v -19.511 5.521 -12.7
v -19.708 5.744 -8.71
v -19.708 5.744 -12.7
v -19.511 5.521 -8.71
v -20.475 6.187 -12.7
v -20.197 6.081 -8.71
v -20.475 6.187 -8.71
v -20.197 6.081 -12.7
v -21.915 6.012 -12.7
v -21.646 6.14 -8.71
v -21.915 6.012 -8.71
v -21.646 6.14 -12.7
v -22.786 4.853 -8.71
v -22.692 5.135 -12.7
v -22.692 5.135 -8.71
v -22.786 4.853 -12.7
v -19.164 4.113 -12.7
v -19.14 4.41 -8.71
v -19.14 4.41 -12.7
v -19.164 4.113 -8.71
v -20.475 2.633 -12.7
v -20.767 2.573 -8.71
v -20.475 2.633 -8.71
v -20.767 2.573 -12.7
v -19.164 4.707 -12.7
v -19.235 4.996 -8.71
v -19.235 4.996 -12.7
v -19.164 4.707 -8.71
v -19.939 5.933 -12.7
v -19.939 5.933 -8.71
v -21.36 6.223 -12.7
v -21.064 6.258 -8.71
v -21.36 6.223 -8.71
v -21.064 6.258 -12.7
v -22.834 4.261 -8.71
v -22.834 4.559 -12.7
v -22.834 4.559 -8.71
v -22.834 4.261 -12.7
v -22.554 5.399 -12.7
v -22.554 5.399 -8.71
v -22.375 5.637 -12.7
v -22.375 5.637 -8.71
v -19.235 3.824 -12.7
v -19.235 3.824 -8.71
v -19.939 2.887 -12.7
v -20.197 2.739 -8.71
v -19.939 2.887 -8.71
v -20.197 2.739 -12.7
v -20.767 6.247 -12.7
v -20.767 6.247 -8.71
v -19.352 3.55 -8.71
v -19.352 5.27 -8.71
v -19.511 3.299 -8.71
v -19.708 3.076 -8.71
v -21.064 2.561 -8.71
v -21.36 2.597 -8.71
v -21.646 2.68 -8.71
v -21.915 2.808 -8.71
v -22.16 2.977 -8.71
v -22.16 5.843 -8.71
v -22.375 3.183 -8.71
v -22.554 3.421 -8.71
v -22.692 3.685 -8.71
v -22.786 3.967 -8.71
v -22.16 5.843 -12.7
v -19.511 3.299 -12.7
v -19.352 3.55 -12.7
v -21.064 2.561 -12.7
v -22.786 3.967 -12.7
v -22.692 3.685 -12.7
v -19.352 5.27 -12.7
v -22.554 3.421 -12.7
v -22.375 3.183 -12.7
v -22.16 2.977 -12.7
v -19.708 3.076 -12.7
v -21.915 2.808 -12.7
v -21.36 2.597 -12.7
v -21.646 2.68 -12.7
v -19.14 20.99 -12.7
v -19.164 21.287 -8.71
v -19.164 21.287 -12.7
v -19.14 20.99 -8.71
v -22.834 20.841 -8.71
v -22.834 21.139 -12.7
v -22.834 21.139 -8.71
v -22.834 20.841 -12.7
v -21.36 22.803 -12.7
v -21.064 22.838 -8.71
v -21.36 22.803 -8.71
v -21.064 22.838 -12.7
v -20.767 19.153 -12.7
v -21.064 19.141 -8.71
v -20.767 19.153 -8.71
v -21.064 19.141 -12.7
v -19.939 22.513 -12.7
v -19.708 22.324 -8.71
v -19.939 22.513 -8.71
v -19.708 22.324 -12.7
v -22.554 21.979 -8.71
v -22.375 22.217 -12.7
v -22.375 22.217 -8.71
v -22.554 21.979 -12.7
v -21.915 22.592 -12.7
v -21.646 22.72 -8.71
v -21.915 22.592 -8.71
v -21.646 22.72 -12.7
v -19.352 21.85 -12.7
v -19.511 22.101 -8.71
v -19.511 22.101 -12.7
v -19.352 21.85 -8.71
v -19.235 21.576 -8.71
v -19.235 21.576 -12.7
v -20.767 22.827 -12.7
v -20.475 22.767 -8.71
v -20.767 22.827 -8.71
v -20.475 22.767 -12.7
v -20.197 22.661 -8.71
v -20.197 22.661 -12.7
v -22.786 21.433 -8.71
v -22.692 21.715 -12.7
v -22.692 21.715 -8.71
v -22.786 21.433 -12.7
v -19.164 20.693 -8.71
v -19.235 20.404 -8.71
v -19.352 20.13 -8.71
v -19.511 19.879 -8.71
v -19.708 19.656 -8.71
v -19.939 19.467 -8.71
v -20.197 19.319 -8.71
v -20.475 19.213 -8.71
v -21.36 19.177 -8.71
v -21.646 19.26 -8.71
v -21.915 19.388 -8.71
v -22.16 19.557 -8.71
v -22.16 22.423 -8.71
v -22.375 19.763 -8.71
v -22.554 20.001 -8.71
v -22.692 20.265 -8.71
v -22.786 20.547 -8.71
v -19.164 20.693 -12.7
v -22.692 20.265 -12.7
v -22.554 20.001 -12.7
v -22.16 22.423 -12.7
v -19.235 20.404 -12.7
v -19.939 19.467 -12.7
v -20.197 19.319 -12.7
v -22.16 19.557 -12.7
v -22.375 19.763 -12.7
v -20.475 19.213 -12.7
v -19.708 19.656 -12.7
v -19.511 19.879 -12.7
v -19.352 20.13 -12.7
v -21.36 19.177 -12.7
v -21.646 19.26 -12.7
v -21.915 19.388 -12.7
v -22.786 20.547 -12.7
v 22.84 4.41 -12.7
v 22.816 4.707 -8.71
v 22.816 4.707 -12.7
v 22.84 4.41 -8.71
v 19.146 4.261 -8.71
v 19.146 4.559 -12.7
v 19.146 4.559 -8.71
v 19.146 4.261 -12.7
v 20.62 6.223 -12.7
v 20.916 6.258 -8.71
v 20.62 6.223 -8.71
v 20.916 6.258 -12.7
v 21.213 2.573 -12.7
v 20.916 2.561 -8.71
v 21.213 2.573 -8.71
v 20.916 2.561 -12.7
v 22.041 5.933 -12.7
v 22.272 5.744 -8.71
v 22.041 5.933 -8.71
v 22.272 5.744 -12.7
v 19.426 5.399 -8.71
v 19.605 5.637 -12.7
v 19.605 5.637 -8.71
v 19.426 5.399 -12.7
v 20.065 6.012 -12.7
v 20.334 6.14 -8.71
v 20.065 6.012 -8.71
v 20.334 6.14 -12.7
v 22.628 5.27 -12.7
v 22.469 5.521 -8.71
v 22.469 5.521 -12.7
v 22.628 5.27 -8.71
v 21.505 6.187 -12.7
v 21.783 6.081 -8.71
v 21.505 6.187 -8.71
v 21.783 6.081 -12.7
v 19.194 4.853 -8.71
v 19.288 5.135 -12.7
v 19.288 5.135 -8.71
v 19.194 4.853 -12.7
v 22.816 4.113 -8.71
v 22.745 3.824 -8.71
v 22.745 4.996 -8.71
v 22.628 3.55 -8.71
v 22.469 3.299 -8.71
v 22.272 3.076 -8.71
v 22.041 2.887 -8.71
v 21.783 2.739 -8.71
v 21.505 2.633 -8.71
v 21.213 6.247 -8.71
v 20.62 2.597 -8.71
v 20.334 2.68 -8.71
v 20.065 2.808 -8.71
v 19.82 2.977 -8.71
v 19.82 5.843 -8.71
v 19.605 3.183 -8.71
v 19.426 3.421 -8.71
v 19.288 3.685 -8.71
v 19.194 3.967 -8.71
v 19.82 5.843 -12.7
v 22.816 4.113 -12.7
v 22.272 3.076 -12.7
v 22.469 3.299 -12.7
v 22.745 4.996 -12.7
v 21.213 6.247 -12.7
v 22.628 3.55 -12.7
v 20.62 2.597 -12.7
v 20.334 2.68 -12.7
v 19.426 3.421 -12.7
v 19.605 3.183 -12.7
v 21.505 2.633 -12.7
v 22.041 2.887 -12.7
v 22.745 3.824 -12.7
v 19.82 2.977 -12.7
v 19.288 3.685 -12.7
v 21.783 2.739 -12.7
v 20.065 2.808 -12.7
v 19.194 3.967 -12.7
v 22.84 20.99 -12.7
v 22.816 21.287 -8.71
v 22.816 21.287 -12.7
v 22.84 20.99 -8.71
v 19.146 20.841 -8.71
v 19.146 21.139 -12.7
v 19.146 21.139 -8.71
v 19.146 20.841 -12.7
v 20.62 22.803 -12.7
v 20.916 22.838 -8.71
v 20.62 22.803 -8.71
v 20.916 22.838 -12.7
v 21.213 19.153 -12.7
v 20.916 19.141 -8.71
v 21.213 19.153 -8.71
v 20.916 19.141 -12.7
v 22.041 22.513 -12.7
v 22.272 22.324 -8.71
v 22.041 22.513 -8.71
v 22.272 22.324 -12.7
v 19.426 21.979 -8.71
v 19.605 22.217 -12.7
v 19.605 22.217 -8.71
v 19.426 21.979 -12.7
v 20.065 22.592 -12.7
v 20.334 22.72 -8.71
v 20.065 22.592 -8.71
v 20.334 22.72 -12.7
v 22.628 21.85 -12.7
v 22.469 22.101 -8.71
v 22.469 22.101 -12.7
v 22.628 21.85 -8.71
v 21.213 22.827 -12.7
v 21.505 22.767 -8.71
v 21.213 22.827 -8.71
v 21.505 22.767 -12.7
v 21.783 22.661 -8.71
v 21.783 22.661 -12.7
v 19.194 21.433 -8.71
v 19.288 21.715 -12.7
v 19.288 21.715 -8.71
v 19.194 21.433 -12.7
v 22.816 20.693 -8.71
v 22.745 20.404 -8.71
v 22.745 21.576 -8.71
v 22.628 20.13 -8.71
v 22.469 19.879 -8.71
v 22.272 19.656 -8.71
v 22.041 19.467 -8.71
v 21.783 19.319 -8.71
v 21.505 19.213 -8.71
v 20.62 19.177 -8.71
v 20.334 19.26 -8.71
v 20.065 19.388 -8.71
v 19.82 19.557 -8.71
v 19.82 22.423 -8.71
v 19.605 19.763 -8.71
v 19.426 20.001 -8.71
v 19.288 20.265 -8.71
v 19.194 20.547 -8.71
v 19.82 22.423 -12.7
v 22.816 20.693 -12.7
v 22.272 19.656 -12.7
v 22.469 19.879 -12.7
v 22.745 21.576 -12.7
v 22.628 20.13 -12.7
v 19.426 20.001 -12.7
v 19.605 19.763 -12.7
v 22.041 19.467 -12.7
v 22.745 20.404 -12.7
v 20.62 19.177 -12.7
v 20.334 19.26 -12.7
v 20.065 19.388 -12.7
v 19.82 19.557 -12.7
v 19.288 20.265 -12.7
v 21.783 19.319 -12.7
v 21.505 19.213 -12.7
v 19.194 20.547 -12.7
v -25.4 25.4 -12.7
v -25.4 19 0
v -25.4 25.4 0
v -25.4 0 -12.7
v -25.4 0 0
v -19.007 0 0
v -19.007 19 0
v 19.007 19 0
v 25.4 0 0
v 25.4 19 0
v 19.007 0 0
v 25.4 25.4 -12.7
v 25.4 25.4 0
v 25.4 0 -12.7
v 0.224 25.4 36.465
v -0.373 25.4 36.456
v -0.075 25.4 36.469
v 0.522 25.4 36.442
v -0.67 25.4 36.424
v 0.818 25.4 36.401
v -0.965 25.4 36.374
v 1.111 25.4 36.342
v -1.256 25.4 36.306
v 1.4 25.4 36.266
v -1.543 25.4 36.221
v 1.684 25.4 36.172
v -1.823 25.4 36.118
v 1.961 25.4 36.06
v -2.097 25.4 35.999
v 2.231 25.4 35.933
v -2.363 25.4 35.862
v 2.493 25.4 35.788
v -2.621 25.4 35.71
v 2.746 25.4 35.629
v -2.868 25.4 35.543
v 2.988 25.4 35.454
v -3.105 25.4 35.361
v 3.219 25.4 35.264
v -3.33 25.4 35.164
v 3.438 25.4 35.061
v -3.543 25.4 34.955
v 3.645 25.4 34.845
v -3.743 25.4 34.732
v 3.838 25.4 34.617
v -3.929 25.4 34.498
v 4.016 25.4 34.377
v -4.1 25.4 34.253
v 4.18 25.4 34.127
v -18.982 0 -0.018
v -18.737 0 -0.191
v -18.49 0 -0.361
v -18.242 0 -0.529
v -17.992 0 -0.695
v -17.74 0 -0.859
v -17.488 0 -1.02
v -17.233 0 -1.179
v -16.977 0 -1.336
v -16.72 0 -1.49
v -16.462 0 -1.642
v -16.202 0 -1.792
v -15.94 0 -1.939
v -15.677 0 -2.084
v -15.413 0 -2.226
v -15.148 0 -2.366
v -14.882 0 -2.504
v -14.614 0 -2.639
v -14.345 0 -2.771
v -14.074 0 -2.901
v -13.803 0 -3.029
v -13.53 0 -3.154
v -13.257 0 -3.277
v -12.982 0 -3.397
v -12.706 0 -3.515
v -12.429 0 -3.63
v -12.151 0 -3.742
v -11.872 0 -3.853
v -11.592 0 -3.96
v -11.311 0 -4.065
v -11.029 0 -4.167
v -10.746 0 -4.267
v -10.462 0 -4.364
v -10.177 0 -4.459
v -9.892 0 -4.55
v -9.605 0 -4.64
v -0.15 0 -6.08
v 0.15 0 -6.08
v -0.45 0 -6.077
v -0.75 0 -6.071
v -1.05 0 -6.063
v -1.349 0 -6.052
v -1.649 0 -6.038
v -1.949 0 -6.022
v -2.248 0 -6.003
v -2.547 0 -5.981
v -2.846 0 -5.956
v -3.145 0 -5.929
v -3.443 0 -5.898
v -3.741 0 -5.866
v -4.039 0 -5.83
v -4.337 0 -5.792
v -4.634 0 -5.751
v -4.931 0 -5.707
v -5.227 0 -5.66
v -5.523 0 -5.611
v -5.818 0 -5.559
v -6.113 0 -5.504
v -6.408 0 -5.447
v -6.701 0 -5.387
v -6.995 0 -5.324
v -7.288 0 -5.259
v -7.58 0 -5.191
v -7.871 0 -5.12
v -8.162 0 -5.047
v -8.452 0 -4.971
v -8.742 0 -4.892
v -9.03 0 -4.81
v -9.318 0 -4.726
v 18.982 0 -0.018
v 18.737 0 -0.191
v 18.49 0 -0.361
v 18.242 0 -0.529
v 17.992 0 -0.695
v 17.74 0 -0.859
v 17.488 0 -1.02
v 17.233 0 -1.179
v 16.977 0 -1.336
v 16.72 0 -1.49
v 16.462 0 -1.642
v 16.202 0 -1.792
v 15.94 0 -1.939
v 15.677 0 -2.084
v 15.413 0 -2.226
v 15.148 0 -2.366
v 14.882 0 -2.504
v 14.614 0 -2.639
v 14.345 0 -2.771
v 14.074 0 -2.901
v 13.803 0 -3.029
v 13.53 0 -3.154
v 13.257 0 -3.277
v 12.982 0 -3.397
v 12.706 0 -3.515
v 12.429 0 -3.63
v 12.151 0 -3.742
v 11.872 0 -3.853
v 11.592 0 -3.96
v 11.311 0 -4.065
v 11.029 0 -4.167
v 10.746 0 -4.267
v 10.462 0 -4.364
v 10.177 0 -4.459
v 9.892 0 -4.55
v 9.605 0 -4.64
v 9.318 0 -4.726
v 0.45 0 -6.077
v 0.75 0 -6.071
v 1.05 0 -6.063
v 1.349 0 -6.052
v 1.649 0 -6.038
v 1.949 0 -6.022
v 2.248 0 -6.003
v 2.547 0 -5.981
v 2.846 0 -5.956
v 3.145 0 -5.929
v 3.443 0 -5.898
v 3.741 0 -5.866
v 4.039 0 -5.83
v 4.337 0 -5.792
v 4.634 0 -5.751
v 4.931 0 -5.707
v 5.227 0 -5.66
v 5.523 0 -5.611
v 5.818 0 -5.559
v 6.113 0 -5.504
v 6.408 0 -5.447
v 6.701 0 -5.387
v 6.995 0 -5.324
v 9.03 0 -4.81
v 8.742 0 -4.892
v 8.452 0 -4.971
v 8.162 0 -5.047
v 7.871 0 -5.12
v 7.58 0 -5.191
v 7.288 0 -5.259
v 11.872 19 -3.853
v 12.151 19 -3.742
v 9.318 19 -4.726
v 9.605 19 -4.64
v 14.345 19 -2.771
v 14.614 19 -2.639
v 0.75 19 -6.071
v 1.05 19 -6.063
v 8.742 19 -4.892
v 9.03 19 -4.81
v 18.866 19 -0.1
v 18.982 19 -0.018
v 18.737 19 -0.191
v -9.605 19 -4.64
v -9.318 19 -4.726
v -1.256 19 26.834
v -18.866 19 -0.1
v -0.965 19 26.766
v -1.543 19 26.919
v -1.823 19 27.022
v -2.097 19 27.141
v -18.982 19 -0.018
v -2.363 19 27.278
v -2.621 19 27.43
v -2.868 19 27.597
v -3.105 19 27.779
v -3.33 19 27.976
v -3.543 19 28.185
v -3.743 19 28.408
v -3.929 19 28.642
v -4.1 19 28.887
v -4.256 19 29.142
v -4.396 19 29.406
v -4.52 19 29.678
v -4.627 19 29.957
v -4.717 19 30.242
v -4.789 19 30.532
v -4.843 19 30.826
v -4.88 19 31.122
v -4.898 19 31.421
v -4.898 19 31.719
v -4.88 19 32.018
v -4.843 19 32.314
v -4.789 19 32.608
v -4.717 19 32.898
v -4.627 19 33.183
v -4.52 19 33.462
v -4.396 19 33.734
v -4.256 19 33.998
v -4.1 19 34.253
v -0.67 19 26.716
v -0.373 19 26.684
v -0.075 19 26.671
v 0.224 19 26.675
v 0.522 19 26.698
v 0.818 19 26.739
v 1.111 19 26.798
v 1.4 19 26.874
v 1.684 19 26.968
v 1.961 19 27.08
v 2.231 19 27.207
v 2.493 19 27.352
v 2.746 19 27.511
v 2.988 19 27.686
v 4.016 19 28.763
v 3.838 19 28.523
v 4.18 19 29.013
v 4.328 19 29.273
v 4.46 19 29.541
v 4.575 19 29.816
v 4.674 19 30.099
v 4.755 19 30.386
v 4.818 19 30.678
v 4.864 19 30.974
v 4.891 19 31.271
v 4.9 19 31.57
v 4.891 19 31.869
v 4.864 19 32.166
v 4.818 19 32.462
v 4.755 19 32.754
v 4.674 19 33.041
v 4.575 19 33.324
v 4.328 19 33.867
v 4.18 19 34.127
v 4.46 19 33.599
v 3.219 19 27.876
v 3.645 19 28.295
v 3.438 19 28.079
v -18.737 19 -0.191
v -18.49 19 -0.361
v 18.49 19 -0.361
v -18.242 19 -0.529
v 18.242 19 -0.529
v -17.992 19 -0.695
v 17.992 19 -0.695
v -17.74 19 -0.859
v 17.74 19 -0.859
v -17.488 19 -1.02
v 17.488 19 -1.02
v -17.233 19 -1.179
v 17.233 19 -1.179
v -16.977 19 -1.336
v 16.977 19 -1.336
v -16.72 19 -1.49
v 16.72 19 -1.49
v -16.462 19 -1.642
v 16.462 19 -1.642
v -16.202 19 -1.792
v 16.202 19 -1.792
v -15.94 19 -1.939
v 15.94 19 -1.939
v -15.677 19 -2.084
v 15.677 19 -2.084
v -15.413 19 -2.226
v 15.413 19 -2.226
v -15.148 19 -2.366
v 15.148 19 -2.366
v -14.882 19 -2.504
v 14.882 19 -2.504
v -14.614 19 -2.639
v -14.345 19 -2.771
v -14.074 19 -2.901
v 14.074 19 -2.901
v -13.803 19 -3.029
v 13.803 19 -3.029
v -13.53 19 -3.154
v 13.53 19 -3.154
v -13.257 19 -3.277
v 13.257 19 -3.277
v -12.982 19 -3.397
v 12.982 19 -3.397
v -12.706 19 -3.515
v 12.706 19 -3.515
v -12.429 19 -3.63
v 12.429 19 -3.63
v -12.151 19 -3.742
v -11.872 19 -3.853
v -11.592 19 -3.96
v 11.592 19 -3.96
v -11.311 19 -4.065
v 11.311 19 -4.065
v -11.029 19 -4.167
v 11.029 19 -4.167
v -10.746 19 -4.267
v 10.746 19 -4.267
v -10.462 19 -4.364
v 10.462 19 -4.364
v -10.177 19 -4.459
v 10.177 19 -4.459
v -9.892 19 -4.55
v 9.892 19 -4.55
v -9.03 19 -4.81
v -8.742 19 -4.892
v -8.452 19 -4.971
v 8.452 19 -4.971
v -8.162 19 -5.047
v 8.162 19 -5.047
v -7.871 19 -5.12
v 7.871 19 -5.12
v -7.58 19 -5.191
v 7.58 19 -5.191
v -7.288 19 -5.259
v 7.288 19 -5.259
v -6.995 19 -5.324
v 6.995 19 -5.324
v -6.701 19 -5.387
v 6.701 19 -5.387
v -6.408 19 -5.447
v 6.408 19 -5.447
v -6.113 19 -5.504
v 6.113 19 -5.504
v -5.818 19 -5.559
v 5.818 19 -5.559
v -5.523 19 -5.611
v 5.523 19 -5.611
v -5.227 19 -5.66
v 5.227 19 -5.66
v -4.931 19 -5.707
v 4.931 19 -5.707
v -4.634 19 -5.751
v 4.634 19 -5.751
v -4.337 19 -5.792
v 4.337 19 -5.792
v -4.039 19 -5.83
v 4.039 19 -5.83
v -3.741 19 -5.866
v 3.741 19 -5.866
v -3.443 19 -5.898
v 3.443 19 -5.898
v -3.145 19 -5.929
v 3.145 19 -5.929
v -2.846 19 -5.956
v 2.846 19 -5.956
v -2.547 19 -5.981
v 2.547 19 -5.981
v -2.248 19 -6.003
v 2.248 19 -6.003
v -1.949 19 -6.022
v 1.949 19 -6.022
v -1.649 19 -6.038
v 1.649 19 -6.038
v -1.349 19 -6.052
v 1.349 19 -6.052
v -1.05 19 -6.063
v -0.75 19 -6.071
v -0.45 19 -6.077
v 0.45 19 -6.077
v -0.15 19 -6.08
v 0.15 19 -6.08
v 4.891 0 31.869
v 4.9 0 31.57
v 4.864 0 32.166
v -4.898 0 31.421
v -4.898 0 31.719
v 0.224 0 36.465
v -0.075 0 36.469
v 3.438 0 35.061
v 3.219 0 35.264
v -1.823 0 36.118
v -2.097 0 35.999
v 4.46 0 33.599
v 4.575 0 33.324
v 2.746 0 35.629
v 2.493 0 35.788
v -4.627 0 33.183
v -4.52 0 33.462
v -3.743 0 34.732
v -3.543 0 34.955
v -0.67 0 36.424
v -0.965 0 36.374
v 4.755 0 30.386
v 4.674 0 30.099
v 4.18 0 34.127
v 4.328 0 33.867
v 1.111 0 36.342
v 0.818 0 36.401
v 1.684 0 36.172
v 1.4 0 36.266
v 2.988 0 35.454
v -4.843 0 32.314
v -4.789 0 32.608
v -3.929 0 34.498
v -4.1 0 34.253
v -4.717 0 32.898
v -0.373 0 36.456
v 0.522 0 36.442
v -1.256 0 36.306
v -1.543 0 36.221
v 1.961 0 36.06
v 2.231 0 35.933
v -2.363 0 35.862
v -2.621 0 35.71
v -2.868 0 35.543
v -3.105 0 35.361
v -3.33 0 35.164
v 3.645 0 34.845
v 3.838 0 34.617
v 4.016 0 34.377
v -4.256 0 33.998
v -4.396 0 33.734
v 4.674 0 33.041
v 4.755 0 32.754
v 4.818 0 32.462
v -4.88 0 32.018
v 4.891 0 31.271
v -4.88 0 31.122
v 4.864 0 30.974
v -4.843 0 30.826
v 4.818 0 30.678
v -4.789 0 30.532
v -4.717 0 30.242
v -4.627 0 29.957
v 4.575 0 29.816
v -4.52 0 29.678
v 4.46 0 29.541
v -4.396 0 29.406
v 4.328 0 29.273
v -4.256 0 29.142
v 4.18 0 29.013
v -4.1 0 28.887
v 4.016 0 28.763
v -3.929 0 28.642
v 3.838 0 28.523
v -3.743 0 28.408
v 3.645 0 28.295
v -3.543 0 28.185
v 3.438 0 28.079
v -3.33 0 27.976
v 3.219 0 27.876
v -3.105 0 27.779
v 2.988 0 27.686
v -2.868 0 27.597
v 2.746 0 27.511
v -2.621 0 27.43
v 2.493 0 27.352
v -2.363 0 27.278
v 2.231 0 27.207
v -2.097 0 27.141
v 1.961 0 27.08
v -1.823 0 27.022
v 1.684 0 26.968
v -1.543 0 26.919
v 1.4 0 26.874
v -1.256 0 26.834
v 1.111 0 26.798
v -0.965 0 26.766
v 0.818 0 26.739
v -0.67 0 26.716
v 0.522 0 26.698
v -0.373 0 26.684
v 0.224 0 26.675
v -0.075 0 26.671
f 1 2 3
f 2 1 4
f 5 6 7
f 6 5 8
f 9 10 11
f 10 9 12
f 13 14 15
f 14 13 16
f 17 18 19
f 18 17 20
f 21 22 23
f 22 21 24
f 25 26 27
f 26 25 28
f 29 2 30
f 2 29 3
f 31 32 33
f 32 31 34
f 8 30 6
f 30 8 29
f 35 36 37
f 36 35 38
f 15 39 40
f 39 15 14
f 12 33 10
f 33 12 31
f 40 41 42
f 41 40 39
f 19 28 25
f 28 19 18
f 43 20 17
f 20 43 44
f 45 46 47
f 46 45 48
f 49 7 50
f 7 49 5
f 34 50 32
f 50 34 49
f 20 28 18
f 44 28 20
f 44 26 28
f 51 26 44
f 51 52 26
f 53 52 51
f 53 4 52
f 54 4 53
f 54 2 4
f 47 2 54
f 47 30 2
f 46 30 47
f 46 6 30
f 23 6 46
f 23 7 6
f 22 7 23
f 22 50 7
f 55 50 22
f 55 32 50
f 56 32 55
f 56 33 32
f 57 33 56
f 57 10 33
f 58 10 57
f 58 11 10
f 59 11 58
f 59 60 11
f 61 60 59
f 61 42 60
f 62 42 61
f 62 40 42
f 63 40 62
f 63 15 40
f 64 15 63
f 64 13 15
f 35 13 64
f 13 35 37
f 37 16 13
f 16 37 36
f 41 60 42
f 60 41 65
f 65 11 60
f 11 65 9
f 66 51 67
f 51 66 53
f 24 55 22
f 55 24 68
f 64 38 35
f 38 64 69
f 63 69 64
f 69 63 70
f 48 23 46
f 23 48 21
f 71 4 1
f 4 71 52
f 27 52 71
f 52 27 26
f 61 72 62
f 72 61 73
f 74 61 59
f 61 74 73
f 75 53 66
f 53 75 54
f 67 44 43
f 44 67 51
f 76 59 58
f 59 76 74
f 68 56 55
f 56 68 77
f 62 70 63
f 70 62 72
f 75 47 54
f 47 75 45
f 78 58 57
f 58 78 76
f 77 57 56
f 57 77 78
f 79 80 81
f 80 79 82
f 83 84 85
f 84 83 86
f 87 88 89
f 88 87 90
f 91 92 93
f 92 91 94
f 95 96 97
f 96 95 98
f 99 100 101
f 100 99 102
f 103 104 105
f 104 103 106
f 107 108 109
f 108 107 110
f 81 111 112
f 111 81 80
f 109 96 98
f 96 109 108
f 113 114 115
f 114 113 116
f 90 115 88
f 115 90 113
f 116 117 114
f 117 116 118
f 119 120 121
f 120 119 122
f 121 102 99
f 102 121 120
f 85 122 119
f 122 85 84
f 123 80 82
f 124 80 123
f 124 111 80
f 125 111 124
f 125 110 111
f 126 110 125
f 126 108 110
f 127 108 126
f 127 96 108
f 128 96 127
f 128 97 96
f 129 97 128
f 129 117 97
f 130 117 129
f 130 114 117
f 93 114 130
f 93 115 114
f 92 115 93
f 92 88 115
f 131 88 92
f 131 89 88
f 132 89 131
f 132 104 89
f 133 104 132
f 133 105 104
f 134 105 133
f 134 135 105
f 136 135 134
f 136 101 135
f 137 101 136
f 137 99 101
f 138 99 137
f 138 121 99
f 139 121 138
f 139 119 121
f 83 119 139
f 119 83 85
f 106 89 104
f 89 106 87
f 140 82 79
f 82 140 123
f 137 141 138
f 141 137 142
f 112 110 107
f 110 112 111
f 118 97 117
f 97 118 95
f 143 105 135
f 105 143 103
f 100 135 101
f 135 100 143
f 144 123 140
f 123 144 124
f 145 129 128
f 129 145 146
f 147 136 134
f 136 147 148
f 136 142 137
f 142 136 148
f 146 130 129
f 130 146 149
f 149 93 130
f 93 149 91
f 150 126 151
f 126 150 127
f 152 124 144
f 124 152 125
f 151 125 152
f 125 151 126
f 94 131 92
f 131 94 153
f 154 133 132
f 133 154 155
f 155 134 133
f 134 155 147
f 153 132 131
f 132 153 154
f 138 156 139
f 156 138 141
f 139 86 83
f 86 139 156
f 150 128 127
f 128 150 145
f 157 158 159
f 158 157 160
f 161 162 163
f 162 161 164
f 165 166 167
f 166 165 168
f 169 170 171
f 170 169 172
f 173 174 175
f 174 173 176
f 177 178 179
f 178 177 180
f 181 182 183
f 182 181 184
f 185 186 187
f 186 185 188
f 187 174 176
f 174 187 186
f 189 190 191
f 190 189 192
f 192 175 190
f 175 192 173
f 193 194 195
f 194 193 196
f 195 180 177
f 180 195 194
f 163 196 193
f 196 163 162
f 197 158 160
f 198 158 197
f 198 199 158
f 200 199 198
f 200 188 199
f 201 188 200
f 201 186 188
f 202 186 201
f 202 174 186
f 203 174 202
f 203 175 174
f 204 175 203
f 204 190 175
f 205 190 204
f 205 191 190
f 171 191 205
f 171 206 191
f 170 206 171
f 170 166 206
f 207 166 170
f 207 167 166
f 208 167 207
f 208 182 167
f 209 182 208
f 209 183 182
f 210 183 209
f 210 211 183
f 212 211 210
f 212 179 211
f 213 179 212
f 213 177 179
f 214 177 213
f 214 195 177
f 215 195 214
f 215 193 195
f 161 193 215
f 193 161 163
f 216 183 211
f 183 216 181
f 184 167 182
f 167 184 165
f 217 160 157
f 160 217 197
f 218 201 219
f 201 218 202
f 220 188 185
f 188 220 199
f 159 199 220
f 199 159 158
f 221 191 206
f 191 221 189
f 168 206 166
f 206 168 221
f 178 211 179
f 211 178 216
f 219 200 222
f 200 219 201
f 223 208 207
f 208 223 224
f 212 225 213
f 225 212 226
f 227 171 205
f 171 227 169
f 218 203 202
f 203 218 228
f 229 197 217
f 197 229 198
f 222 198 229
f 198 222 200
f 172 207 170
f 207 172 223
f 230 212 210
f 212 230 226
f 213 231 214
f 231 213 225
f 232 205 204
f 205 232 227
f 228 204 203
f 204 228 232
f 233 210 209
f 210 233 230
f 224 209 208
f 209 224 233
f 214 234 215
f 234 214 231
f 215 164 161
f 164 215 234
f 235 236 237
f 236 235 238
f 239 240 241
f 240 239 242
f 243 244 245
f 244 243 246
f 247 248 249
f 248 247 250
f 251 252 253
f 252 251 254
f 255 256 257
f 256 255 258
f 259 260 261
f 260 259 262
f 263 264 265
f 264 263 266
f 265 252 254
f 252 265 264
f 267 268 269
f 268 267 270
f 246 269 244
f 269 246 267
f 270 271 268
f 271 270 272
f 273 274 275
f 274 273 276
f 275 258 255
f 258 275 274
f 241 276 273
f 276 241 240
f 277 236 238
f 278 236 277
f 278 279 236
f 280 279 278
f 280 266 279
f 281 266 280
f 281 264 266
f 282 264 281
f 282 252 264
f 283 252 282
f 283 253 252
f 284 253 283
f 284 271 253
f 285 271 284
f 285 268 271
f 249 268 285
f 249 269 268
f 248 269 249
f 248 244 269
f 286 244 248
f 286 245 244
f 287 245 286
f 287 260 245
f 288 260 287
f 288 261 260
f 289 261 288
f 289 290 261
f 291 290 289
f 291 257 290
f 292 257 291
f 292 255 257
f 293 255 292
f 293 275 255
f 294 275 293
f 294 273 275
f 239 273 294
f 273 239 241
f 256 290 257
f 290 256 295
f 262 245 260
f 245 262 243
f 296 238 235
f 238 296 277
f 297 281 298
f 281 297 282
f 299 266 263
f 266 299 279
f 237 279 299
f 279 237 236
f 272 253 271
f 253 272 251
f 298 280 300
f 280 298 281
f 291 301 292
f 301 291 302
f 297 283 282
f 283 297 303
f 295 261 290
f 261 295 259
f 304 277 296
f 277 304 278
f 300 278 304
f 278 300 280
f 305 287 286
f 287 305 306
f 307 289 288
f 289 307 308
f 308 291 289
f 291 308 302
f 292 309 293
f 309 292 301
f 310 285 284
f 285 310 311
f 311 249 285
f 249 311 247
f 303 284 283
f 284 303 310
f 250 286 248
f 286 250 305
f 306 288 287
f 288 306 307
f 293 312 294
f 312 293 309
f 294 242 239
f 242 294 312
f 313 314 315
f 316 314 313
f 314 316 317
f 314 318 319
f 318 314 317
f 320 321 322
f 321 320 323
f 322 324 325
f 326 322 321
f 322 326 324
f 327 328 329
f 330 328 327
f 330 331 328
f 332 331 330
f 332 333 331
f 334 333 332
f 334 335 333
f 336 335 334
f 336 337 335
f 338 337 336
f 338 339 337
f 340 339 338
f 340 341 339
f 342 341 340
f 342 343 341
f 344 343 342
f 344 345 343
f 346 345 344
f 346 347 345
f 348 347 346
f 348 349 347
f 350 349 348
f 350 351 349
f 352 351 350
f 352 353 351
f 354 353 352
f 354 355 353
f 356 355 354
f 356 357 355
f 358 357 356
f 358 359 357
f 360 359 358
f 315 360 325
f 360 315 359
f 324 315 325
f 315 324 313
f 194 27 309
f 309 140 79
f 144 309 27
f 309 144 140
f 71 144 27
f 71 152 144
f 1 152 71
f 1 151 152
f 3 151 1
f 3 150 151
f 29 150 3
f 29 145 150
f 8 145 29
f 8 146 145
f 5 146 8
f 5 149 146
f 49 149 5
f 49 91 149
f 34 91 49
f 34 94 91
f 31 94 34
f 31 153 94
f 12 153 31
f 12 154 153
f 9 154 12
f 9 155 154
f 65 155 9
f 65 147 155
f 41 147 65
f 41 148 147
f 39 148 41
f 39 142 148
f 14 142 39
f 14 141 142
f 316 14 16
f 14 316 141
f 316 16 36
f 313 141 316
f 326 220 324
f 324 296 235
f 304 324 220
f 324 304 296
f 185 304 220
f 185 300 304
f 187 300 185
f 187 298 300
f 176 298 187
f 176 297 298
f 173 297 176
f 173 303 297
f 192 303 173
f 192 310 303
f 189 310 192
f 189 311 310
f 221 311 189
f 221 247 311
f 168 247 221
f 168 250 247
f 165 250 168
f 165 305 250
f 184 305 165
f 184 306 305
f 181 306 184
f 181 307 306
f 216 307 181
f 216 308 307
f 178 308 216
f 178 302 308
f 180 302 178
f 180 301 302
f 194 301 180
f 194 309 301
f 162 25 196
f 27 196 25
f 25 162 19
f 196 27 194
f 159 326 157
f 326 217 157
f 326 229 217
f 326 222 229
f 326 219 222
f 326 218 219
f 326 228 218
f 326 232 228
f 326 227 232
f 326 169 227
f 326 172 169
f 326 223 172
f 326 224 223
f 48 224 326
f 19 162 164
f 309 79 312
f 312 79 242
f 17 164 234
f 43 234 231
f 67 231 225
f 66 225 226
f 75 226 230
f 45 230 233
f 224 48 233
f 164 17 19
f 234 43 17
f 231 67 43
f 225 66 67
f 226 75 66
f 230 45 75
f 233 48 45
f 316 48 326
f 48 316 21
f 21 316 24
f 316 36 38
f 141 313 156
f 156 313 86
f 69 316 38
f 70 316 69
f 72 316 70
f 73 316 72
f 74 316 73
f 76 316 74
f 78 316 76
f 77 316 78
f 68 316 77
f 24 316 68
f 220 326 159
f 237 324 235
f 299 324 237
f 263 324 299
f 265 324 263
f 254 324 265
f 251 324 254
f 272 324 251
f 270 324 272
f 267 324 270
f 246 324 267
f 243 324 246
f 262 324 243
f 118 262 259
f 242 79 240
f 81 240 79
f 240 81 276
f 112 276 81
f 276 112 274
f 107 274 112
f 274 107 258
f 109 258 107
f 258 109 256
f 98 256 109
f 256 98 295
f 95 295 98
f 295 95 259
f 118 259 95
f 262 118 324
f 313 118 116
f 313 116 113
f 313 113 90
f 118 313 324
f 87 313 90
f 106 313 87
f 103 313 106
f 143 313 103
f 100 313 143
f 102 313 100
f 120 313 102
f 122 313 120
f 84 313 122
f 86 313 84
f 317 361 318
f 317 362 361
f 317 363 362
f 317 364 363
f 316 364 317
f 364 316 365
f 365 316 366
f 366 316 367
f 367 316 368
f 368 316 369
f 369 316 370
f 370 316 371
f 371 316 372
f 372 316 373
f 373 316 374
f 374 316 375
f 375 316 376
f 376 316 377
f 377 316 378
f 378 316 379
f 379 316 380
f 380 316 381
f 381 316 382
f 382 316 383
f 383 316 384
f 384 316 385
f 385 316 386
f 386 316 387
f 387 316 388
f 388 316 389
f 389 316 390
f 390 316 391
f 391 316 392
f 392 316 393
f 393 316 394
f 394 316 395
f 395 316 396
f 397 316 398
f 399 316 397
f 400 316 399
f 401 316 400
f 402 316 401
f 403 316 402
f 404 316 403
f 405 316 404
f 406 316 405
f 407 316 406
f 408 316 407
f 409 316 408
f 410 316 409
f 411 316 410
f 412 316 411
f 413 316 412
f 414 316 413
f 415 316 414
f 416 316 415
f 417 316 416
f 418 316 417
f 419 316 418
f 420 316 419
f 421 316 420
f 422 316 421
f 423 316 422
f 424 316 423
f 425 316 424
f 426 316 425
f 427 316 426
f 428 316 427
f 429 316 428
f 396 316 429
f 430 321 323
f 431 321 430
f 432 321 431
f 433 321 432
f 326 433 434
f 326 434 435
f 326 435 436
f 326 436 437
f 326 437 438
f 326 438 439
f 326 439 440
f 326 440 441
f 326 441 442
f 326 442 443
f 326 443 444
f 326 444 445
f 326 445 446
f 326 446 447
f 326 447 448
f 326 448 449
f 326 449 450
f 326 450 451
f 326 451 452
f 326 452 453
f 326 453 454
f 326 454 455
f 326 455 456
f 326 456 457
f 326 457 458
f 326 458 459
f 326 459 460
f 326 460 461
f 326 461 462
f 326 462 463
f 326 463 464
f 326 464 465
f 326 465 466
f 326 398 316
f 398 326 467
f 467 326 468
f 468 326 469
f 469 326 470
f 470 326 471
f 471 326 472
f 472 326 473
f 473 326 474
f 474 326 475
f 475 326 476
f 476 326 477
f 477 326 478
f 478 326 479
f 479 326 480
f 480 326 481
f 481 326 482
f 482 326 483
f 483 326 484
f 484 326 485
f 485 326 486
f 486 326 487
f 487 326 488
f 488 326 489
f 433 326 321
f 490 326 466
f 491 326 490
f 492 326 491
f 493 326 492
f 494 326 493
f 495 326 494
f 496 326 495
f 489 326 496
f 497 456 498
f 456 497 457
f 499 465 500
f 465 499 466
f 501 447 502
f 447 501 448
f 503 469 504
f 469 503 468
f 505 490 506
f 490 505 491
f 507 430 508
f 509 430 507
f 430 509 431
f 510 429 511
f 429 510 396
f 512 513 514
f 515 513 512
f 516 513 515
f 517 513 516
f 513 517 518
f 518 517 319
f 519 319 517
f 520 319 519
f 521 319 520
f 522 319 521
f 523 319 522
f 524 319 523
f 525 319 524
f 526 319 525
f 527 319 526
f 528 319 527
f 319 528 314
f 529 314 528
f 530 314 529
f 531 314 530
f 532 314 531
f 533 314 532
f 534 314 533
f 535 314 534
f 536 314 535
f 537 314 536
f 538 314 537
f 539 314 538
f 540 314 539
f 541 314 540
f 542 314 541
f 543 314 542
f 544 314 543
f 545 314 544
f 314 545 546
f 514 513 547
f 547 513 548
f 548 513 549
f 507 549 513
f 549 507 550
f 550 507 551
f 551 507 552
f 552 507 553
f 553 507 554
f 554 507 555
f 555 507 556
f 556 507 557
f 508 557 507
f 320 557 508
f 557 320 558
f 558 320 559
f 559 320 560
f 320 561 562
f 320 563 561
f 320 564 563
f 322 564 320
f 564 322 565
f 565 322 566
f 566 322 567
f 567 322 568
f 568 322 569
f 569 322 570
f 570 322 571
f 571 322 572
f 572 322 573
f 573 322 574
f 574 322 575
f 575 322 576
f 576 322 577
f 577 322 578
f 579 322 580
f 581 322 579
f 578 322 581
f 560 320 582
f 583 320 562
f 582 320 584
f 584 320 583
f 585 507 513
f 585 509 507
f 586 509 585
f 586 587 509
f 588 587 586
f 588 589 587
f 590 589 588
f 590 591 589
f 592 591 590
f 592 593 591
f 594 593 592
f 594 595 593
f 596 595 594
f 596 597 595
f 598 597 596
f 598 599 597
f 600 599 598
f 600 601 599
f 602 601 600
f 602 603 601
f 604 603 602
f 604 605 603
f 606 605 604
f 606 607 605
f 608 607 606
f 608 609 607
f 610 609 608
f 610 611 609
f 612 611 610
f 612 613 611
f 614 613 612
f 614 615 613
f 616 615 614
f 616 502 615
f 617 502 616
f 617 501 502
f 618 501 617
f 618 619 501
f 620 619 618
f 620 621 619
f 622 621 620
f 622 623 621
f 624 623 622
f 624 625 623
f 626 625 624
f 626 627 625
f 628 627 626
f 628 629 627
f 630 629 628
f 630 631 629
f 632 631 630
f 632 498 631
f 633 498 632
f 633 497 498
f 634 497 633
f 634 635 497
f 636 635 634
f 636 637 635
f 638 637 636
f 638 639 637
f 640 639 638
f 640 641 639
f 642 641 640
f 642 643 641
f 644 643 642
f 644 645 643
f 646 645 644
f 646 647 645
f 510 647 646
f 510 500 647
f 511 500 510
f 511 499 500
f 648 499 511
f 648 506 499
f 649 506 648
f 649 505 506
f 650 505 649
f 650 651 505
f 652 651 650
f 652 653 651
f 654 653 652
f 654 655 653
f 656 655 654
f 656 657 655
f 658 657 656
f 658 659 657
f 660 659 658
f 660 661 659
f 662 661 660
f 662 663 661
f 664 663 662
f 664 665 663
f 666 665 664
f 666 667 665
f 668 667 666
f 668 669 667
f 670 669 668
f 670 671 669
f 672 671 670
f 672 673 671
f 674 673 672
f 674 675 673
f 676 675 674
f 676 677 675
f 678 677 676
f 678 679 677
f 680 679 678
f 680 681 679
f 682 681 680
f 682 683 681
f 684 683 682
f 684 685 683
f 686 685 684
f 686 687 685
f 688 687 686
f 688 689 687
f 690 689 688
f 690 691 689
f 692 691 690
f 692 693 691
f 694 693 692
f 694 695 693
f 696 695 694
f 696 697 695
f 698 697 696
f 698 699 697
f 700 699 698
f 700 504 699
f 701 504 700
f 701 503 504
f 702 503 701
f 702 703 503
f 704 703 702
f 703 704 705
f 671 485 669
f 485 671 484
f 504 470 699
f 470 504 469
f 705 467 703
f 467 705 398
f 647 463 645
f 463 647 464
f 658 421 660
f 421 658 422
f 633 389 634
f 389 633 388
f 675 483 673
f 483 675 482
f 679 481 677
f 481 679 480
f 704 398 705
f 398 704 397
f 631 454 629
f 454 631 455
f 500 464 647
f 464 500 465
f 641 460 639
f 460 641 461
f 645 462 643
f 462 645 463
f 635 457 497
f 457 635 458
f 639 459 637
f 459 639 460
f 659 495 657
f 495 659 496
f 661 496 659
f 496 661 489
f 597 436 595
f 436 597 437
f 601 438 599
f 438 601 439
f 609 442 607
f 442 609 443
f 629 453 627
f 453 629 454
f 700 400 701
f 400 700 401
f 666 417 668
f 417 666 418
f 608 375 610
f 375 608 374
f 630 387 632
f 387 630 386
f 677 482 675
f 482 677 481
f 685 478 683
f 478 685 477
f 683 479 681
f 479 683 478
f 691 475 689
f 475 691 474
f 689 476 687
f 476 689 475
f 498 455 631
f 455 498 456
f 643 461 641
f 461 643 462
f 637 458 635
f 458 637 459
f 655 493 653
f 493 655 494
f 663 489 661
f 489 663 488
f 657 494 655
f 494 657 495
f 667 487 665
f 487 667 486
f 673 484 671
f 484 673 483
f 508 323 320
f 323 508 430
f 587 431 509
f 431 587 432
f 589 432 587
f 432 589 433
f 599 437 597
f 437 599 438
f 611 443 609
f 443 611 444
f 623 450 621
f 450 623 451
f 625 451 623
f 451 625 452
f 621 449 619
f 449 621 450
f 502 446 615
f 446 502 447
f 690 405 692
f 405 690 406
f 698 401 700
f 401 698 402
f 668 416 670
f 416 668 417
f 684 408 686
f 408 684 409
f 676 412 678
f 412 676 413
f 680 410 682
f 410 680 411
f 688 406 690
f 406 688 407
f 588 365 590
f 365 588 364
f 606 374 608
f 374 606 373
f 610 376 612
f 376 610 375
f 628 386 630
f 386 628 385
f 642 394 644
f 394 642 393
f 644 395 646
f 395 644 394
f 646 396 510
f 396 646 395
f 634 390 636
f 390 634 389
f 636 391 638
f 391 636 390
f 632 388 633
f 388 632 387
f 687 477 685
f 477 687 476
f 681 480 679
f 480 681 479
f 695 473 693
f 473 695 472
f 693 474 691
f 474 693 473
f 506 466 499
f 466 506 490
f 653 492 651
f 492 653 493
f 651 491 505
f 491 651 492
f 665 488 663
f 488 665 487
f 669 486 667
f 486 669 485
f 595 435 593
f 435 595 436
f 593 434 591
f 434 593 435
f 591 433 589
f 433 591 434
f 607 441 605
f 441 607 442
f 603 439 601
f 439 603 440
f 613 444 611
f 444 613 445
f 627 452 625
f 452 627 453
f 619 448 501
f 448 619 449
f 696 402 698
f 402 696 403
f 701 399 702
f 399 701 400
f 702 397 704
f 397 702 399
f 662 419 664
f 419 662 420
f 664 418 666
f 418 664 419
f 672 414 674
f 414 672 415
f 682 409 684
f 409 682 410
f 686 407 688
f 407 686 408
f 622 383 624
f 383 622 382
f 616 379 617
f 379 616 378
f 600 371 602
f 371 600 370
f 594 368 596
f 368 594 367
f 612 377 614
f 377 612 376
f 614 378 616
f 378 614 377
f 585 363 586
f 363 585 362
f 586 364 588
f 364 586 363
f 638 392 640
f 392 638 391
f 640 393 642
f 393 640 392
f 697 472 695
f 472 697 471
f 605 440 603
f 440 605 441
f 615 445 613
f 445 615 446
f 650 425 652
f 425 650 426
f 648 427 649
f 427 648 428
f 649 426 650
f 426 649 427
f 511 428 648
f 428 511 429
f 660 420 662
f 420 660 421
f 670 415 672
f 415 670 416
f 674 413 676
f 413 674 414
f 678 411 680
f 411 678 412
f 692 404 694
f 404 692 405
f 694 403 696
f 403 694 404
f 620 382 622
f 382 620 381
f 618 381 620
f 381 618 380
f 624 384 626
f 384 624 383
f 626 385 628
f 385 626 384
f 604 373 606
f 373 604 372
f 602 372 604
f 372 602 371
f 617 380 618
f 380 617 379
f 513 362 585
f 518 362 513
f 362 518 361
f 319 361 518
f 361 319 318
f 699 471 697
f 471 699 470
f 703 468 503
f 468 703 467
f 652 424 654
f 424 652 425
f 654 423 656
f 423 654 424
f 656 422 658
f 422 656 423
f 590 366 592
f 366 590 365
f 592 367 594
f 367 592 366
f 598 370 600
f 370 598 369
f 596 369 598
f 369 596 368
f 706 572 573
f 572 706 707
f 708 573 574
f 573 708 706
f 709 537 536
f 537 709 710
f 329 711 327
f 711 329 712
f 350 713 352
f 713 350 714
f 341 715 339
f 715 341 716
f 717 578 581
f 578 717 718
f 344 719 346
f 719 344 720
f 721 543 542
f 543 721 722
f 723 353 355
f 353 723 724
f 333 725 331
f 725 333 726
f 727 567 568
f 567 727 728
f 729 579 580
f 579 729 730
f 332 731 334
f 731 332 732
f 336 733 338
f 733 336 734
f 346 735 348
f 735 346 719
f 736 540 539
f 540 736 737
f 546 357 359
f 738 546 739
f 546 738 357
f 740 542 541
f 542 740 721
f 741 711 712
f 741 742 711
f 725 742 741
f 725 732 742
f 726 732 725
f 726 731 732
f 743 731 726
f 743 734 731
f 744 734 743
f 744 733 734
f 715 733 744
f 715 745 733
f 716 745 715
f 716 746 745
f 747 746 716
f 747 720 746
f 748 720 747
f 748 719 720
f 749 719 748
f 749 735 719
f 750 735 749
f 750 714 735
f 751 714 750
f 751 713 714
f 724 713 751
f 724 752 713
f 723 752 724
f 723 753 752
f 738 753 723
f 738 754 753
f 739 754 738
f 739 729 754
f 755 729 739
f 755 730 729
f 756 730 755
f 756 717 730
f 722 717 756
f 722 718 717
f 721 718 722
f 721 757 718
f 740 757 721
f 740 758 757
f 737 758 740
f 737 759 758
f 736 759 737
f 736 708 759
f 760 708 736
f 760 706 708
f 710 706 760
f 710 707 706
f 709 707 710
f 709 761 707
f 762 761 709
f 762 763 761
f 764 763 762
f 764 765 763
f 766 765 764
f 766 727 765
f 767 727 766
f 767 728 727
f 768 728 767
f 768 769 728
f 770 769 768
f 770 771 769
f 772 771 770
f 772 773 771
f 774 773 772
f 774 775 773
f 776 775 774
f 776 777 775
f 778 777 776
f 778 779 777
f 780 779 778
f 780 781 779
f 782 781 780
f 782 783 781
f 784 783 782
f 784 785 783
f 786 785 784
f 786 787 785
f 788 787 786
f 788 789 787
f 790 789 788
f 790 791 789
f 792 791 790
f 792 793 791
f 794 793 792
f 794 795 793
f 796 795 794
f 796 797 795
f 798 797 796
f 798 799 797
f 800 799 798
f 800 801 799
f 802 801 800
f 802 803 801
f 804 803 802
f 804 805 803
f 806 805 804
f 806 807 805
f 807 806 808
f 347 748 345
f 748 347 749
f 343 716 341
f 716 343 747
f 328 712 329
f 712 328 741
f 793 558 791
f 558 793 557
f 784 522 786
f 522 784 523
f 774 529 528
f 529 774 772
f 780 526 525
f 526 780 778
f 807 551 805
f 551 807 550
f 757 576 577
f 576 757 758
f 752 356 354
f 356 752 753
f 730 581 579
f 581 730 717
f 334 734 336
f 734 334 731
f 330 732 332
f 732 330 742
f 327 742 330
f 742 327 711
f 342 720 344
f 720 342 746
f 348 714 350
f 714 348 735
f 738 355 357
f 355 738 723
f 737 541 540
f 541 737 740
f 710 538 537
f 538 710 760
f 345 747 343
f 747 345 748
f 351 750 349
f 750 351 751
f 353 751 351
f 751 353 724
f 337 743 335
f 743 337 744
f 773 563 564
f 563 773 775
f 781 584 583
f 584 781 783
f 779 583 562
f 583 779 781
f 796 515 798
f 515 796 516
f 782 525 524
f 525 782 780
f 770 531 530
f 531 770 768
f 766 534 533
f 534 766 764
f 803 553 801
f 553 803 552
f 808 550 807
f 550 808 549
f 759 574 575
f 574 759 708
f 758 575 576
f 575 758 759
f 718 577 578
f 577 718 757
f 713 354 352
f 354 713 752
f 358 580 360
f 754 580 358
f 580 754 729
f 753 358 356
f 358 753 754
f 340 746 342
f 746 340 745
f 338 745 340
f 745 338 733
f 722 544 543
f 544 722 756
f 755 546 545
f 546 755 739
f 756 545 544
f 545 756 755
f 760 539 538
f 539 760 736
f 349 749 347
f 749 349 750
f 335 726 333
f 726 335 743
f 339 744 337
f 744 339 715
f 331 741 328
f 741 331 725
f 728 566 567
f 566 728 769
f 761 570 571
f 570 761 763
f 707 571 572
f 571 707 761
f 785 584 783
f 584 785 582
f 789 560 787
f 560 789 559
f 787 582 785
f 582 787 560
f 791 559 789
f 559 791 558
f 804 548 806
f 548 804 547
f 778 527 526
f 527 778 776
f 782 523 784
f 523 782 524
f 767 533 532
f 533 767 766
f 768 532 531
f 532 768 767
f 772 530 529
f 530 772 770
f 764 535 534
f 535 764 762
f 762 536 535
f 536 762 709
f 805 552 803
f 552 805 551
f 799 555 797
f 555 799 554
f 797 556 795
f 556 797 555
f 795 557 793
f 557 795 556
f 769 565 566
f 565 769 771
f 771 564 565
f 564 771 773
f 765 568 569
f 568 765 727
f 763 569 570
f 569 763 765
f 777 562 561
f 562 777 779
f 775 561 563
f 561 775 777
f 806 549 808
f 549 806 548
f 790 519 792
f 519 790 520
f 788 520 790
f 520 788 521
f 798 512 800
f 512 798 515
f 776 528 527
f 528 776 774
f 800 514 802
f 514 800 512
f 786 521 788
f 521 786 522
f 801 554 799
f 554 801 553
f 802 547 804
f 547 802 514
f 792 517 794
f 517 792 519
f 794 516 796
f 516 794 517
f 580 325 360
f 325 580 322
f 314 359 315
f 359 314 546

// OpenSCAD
// file: LockedForge.scad
x = 1;
y = 2;
unit = 25.4;
d_magnet = 5;
layer_height = .2;
loose = layer_height * 2;
cross_section = true;
min_thickness = .6;
z_lock = 4.8;
/* [Hidden] */
module __Customizer_Limit__() {};
$fa = .01;
$fs = .3;
h = d_magnet + loose + 2 * min_thickness;
thickness = d_magnet + loose/2 + .86;
module locked_forge_base(x = 1, y = 1, unit = 25.4, d_magnet = 5, h = 6.2, thickness = 6, loose = .3) {
    module hole() {
        translate([0, 0, min_thickness]) cylinder(h = d_magnet + loose, d = d_magnet + loose);
    }
    difference() {
        union() {
            difference() {
                cube([x * unit, y * unit, h]);

                //center hollow
                translate([thickness, thickness, - .01])
                    cube([x * unit - 2 * thickness, y * unit - 2 * thickness, h + .02]);
            }
            d_side = .86 + 7.1 / 2;
            for (dx = [d_side, x * unit - d_side], dy = [d_side, y * unit - d_side]) {
                translate([dx, dy, 0]) cylinder(h = h, d = 6.9 + .2 + 2*.86);
            }
        }
        d_side = .86 + 7.1 / 2;
        for (dx = [d_side, x * unit - d_side], dy = [d_side, y * unit - d_side]) {
            translate([dx, dy, - .01]) cylinder(h = h + .02, d = 4.1);
            translate([dx, dy, - .01]) cylinder(h = 4 + .2 + .01, d = 6.9 + .2);
        }
        //magnet holes
        for (i = [1:x]) {
            dx = (i - .5) * unit;
            translate([dx, d_magnet / 2, 0]) hole();
            translate([dx, y * unit - d_magnet / 2, 0]) hole();
            translate([dx - d_magnet / 2, d_magnet / 2, min_thickness + layer_height])
                cube([d_magnet, y * unit - d_magnet, z_lock]);
        }
        for (i = [1:y]) {
            dy = (i - .5) * unit;
            translate([d_magnet / 2, dy, 0]) hole();
            translate([x * unit - d_magnet / 2, dy, 0]) hole();
            translate([d_magnet / 2, dy - d_magnet / 2, min_thickness + layer_height])
                cube([x * unit - d_magnet, d_magnet, z_lock]);
        }
        if ($preview && cross_section) {
            translate([- 1, - 1, h / 2]) cube([x * unit + 2, y * unit + 2, h / 2 + 1]);
        }
    }
}

module top_holes(x, y, h=4, d=3.7){
        d_side = .86 + 7.1 / 2;
        for (dx = [d_side, x * unit - d_side], dy = [d_side, y * unit - d_side]) {
            translate([dx, dy, -.01]) cylinder(h = h, d = 3.7);
        }
}


mirror([0, 0, 1]) locked_forge_base(x, y, unit, d_magnet, h, thickness, loose);
// main file
/*
	split in halves to be printed on their side and magneted together
*/

use <LockedForge.scad>

$fa = .01;
$fs = $preview ? 1 : .3;

d1 = 55.5;
d2 = 19.8;
h = 28;
h_magnet = 2.8 + .1;
d_magnet = 8 + .2;

twt = 1.67; //thin wall thickness
margin = 5;
k = h / 2 + margin;

eff = 26.67;
difference() {
    translate([0, 25.4 / 2, - 25.4 / 4]) cube([2 * 25.4, 25.4, 25.4 / 2], center = true);
    //base(1, .5, center = true);
    translate([0, 0, eff]) //k
        rotate([90, 0, 0])
            cylinder(d = d1 + 2 * margin, h = h + 2 * margin, center = true);
    translate([-25.4,0,-25.4/2]) top_holes(2,1, d=3.8);
}


translate([0, 25.4, eff + d2 / 2 - margin])
    rotate([90, 0, 0])
        cylinder(h = 25.4, d = d2 - 2 * margin);
hull() {
    translate([0, 25.4, eff + d2 / 2 - margin])
        rotate([90, 0, 0])
            cylinder(h = 25.4 - k, d = d2 - 2 * margin);
    translate([- 25.4, k, - .1]) cube([25.4 * 2, 25.4 - k, .1]);
}
%translate([0, 0, eff]) //k
    rotate([90, 0, 0])
        difference() {
            cylinder(d = d1, h = h, center = true);
            cylinder(d = d2 + .2, h = h + 2, center = true);
        }
